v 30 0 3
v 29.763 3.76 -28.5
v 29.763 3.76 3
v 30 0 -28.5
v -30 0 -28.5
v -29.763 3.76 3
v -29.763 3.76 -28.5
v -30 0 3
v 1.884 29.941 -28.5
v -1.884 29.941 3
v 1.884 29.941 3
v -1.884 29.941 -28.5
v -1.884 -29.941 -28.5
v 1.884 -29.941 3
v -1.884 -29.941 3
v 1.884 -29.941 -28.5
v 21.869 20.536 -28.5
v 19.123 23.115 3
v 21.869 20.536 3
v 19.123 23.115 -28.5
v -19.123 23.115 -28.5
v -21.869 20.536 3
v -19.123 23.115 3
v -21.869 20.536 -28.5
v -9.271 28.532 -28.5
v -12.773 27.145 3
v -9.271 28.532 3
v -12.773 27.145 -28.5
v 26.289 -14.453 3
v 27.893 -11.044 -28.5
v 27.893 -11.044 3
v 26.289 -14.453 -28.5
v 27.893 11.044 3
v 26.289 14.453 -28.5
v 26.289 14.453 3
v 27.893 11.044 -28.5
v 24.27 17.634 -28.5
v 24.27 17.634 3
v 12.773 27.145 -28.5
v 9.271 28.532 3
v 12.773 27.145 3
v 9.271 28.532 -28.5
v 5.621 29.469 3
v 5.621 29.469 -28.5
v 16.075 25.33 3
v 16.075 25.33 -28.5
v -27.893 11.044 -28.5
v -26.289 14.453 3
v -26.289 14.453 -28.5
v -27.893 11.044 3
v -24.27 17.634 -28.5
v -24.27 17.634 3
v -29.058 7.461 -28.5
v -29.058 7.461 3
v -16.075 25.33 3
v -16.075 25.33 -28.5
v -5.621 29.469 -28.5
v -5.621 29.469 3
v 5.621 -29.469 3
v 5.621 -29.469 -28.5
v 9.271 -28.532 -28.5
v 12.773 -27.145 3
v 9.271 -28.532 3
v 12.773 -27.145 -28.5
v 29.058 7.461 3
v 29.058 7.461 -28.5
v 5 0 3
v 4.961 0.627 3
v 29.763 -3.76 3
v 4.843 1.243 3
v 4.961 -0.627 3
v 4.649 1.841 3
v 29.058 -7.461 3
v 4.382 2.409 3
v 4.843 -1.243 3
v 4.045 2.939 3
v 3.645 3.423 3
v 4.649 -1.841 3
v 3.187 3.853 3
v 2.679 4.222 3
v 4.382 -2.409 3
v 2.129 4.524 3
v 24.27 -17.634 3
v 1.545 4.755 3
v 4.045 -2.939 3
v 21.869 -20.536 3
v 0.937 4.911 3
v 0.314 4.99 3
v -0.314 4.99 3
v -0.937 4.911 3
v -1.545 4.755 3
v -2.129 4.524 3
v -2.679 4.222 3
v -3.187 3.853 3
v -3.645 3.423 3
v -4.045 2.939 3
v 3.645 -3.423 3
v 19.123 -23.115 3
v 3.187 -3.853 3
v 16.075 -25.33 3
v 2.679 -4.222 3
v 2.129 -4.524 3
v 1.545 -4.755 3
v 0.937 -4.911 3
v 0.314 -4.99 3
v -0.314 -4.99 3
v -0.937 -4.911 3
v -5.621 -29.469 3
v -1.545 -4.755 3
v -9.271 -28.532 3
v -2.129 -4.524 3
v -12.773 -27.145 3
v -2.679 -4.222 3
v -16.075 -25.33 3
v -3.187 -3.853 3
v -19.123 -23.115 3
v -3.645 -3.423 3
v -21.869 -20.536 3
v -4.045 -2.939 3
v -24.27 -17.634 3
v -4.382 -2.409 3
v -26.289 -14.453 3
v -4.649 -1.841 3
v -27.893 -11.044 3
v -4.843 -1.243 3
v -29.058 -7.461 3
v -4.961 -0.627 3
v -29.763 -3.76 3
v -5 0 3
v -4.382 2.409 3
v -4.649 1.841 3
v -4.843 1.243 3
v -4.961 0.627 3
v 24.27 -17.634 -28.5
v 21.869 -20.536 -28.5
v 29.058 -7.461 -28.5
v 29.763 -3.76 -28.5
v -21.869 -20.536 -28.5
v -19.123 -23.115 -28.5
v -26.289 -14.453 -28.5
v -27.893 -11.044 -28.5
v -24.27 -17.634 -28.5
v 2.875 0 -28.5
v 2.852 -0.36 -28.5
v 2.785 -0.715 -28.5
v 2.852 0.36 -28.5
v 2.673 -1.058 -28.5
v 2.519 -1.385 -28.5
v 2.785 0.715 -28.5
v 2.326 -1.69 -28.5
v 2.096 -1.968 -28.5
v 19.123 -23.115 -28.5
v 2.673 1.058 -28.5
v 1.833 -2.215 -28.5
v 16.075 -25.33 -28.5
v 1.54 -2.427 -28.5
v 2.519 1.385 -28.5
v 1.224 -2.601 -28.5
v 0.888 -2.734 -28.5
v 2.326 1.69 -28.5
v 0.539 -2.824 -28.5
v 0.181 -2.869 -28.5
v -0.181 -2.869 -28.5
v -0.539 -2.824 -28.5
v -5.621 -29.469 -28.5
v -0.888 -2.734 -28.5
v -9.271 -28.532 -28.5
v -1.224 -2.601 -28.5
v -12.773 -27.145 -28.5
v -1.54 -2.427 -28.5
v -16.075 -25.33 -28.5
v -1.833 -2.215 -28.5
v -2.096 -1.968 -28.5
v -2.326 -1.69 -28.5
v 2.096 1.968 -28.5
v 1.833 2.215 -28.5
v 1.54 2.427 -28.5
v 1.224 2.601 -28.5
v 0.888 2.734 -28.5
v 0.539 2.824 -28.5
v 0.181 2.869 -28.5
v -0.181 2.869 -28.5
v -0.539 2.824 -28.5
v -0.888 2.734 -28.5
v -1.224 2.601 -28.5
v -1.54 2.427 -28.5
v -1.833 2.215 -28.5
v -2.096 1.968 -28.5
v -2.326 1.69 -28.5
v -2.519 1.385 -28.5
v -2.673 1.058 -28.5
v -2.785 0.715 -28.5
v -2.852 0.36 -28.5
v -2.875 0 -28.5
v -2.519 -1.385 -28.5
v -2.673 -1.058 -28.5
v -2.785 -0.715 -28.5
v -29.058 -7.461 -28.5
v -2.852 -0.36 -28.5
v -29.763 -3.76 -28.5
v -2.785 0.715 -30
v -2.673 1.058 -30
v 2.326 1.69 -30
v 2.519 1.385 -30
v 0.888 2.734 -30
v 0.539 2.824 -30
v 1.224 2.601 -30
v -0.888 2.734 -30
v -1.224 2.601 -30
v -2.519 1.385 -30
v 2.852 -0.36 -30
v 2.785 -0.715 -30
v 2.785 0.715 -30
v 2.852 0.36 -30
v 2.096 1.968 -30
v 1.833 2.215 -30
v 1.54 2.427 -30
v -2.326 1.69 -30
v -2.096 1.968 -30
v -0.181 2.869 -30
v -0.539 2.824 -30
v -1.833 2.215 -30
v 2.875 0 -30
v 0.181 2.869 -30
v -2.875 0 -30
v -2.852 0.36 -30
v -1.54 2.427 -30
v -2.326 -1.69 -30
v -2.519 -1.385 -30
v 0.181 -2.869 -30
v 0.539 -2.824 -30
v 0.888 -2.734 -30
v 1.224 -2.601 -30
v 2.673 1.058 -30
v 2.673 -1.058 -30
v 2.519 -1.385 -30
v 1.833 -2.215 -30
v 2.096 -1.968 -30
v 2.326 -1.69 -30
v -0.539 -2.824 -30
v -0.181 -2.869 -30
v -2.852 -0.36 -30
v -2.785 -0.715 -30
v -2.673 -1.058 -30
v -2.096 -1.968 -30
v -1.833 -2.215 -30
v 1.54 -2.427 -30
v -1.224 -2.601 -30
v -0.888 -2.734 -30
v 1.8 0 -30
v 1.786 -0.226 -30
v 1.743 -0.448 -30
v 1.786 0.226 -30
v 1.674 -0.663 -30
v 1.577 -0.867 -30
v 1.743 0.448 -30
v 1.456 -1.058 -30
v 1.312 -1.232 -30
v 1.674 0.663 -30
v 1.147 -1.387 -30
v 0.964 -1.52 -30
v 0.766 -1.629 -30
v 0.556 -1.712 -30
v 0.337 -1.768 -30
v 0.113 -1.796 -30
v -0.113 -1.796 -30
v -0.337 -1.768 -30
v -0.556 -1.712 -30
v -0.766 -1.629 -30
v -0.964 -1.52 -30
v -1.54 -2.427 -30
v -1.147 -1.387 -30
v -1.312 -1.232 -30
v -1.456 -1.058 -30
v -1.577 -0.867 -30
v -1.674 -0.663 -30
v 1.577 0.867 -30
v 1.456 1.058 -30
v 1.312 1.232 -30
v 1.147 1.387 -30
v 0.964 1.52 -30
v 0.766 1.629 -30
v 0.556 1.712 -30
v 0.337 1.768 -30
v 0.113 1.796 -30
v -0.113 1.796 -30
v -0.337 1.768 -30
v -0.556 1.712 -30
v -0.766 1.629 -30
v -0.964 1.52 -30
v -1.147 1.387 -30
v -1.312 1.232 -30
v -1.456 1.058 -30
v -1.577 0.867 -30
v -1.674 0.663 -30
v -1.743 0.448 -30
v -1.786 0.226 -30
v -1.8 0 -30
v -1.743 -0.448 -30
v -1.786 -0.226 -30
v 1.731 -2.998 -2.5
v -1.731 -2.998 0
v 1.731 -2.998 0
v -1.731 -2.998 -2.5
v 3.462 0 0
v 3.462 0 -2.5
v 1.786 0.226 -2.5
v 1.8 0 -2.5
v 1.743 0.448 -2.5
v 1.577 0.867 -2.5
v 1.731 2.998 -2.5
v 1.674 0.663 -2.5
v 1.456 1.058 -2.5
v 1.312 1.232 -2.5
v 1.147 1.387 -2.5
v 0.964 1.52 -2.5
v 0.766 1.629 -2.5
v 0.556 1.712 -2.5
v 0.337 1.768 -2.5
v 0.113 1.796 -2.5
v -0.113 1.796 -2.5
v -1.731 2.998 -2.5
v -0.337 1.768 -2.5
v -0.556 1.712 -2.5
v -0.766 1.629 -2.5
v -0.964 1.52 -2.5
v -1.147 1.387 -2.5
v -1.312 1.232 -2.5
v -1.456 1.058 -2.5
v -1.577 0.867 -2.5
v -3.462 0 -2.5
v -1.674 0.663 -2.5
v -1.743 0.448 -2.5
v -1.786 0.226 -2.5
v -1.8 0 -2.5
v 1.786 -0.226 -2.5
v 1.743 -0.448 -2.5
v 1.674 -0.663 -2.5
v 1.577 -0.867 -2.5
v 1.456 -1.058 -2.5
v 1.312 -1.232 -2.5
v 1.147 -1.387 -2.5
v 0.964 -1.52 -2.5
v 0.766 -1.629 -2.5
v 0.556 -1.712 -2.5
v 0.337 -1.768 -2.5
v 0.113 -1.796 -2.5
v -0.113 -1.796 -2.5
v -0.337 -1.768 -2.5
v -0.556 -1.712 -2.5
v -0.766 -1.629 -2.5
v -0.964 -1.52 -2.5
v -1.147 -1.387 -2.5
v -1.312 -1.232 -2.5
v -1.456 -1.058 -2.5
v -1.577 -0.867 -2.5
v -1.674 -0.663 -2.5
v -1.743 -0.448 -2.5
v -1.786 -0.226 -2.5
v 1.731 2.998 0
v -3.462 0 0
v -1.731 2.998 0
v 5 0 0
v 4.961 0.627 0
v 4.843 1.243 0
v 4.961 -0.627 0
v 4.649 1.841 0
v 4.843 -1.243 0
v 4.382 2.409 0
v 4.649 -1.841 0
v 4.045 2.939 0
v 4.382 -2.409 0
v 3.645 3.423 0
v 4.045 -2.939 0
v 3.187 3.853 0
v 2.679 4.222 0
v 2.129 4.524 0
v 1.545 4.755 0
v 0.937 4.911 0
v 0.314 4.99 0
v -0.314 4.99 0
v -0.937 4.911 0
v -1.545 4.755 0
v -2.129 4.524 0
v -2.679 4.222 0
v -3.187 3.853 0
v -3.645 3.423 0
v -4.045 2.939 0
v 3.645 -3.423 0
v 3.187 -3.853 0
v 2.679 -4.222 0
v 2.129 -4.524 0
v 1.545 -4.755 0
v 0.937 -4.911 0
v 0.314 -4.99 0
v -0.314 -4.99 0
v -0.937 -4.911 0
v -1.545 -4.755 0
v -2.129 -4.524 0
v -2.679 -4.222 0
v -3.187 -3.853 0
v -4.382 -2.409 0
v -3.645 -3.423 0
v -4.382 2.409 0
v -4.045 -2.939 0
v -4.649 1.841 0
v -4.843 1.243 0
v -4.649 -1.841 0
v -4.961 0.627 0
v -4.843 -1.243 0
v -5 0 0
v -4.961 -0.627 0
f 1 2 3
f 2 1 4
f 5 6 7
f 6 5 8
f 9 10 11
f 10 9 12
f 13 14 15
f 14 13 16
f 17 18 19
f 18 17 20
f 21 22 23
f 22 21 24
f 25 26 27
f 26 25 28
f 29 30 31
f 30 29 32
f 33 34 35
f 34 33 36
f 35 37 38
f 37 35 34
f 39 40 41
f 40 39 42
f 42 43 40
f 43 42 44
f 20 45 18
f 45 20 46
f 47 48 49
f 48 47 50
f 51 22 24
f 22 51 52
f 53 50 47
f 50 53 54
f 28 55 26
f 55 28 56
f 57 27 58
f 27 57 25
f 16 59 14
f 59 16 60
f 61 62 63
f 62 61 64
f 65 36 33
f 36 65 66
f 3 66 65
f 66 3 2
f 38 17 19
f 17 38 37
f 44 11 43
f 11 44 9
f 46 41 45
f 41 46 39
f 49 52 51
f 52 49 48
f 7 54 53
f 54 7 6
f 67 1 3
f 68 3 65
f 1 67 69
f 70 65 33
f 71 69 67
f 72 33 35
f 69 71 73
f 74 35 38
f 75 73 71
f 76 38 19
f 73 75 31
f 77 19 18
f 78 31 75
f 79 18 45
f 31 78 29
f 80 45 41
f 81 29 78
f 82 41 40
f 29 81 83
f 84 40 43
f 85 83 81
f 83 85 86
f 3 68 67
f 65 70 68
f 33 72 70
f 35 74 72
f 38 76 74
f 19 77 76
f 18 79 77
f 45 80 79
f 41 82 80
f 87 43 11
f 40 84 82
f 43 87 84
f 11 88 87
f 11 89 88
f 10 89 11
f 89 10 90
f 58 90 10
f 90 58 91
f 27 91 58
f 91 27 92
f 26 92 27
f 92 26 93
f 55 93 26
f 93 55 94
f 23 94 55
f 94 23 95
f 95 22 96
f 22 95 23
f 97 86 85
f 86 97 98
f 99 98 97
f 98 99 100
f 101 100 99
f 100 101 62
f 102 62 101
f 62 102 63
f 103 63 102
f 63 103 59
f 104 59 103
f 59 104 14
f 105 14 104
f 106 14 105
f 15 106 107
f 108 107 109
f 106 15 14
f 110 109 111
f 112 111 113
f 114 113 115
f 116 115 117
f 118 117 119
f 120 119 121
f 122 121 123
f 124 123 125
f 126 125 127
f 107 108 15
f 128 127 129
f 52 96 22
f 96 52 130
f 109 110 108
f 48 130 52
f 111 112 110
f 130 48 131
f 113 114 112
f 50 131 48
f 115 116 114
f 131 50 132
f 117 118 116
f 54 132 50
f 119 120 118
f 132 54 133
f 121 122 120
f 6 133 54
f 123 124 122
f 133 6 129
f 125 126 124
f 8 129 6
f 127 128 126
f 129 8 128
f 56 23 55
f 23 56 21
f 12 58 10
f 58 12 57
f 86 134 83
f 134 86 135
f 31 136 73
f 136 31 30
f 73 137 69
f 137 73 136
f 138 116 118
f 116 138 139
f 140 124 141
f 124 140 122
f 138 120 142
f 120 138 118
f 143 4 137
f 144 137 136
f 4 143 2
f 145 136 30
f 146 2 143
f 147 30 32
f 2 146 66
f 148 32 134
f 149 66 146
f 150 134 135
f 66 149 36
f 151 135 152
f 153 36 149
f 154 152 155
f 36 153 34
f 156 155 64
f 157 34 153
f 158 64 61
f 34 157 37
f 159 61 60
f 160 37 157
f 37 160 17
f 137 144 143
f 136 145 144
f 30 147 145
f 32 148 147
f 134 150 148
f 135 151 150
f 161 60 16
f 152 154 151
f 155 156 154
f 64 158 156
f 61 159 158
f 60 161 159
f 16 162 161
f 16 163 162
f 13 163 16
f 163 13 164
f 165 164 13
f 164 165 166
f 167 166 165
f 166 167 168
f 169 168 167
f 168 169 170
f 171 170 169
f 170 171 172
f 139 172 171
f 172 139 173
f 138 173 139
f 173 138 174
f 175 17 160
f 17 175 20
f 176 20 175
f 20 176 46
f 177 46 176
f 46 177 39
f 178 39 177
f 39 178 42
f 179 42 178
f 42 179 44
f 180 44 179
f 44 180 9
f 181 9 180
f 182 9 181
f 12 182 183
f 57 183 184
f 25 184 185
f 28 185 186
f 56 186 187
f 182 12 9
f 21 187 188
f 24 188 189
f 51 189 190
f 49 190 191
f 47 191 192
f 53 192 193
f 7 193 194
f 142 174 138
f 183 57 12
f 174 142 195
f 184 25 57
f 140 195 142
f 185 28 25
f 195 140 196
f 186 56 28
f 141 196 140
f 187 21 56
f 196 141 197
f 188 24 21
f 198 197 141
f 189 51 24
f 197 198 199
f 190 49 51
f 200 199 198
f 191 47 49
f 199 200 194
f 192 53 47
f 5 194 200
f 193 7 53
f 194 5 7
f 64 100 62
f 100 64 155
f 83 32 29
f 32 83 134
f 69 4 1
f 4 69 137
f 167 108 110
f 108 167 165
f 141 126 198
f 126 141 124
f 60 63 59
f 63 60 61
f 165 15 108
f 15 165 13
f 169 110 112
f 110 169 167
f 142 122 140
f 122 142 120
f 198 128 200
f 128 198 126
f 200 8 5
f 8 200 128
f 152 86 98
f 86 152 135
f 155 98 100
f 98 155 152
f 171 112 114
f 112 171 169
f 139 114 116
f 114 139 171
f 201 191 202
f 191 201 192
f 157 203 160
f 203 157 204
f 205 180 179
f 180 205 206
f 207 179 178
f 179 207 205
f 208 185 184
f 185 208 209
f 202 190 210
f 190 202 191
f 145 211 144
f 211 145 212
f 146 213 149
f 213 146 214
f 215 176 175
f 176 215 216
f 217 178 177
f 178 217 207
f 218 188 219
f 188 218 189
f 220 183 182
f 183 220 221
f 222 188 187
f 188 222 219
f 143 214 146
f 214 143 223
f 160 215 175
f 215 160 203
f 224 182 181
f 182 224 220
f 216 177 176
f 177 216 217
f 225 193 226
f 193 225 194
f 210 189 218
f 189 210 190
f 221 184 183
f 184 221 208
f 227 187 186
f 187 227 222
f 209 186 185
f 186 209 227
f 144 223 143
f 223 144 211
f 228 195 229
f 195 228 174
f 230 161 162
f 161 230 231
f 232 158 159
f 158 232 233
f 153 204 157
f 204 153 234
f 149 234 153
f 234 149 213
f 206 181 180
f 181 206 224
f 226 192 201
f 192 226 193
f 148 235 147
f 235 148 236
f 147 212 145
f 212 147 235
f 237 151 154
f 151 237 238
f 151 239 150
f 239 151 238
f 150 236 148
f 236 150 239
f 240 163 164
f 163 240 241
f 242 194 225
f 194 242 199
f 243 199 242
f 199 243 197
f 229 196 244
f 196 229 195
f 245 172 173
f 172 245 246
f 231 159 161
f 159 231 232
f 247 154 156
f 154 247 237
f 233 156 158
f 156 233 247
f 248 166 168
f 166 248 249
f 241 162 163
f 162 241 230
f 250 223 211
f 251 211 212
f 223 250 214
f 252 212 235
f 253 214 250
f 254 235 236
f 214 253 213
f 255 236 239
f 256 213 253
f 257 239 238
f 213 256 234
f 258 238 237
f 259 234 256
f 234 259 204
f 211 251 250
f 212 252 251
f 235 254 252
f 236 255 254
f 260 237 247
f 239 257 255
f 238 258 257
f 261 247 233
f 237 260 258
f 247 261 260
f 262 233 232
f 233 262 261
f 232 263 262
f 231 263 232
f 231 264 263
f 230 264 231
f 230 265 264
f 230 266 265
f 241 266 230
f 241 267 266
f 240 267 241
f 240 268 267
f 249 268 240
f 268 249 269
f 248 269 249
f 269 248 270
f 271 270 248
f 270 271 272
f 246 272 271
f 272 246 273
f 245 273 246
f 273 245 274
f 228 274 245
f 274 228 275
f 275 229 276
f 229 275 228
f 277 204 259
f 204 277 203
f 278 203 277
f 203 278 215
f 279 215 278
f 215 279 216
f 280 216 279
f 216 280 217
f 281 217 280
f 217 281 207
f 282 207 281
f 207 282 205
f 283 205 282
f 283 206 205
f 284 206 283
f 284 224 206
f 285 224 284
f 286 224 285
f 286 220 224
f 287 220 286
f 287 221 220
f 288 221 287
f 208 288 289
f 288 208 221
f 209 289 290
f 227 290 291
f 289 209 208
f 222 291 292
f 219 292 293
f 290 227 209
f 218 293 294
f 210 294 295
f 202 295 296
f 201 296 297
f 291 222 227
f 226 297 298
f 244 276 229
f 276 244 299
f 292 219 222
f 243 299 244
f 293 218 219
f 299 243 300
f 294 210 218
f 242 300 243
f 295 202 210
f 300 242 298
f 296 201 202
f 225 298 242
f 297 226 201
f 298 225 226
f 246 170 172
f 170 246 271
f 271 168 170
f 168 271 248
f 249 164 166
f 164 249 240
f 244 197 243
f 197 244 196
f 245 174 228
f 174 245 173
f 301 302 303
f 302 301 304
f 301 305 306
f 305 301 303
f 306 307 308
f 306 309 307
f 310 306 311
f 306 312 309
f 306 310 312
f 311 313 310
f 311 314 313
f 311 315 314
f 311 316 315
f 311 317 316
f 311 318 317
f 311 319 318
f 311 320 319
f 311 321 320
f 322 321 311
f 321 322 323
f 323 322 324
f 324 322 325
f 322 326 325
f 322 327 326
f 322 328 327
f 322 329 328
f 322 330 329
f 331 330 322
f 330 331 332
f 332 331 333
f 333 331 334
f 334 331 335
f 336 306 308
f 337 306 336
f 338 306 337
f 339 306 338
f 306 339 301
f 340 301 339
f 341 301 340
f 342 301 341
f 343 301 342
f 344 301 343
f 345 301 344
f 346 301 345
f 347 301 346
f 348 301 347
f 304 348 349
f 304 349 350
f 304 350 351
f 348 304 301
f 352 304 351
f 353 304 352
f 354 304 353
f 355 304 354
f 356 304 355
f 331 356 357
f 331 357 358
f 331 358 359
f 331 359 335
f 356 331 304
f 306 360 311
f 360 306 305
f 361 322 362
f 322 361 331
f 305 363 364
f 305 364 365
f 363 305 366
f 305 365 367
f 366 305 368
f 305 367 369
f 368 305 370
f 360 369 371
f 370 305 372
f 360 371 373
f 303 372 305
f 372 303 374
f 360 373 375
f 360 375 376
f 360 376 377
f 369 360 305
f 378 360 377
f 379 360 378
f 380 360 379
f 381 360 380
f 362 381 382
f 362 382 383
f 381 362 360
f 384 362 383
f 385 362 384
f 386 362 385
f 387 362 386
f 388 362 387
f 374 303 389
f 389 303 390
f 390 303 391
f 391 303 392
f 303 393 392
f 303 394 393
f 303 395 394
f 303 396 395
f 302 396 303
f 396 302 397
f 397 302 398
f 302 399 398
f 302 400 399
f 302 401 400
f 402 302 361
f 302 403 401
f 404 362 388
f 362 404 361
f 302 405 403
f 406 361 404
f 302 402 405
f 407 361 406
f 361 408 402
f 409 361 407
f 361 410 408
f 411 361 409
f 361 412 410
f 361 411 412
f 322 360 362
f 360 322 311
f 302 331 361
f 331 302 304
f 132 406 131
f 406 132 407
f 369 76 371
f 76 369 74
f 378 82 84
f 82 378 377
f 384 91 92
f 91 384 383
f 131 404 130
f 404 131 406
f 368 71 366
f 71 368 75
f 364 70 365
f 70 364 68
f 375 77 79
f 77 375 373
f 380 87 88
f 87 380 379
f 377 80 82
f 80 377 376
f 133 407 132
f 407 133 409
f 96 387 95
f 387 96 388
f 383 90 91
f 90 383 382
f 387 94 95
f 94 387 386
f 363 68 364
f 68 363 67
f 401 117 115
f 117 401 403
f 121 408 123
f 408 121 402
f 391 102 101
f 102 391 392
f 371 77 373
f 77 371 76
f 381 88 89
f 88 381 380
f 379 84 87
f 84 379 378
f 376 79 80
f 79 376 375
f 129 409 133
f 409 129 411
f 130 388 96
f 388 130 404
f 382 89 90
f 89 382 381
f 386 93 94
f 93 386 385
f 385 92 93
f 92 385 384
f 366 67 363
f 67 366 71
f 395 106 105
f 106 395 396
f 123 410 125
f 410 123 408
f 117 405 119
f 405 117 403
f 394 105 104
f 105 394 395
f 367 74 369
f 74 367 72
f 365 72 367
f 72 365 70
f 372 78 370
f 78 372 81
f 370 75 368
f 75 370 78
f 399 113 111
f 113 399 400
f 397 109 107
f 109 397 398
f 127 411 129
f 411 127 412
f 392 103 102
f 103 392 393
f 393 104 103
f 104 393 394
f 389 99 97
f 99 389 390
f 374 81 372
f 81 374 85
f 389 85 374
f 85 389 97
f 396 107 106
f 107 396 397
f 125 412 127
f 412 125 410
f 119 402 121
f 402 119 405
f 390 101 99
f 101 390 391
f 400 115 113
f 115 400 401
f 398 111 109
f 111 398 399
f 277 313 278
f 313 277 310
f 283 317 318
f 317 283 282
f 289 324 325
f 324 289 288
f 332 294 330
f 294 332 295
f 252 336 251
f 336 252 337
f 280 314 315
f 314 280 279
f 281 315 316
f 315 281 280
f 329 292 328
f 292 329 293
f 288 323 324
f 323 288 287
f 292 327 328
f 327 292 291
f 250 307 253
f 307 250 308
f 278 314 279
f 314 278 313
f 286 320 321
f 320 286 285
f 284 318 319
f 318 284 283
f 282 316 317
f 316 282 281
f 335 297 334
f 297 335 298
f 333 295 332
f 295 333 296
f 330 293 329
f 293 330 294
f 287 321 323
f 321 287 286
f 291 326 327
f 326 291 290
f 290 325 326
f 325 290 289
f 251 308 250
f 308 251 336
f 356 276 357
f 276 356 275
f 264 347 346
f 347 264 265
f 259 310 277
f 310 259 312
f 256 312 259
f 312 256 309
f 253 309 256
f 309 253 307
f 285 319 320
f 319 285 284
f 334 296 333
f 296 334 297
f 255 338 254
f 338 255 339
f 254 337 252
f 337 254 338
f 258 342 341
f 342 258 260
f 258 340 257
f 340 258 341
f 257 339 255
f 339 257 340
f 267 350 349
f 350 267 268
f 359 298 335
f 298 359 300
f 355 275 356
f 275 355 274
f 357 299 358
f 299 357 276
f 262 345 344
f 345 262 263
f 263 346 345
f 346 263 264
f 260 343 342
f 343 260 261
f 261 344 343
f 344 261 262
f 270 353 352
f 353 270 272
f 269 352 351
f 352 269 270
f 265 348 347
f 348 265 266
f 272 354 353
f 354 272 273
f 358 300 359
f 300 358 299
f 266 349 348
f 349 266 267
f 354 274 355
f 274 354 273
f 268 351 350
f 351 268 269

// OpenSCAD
$fn = 50;

difference() {
	union() {
		translate(v = [0, 0, -28.5]) {
			cylinder(h = 31.5, r = 30.0);
		}
		#translate(v = [0, 0, -30.0]) {
			cylinder(h = 30, r = 2.875);
		}
	}
	union() {
		translate(v = [0, 0, 0]) {
			rotate(a = [0, 0, 0]) {
				difference() {
					union() {
						translate(v = [0, 0, -2.5]) {
							linear_extrude(height = 2.5) {
								polygon(points = [[3.4619999999999997, 0.0], [1.7310000000000003, 2.9981799479017264], [-1.7309999999999992, 2.9981799479017264], [-3.4619999999999997, 4.2397272186481365e-16], [-1.7310000000000014, -2.998179947901726], [1.7309999999999977, -2.9981799479017277]]);
							}
						}
					}
					union();
				}
			}
		}
		#cylinder(h = 3, r = 5.0);
		#translate(v = [0, 0, -100.0]) {
			cylinder(h = 200, r = 1.8);
		}
	}
}
